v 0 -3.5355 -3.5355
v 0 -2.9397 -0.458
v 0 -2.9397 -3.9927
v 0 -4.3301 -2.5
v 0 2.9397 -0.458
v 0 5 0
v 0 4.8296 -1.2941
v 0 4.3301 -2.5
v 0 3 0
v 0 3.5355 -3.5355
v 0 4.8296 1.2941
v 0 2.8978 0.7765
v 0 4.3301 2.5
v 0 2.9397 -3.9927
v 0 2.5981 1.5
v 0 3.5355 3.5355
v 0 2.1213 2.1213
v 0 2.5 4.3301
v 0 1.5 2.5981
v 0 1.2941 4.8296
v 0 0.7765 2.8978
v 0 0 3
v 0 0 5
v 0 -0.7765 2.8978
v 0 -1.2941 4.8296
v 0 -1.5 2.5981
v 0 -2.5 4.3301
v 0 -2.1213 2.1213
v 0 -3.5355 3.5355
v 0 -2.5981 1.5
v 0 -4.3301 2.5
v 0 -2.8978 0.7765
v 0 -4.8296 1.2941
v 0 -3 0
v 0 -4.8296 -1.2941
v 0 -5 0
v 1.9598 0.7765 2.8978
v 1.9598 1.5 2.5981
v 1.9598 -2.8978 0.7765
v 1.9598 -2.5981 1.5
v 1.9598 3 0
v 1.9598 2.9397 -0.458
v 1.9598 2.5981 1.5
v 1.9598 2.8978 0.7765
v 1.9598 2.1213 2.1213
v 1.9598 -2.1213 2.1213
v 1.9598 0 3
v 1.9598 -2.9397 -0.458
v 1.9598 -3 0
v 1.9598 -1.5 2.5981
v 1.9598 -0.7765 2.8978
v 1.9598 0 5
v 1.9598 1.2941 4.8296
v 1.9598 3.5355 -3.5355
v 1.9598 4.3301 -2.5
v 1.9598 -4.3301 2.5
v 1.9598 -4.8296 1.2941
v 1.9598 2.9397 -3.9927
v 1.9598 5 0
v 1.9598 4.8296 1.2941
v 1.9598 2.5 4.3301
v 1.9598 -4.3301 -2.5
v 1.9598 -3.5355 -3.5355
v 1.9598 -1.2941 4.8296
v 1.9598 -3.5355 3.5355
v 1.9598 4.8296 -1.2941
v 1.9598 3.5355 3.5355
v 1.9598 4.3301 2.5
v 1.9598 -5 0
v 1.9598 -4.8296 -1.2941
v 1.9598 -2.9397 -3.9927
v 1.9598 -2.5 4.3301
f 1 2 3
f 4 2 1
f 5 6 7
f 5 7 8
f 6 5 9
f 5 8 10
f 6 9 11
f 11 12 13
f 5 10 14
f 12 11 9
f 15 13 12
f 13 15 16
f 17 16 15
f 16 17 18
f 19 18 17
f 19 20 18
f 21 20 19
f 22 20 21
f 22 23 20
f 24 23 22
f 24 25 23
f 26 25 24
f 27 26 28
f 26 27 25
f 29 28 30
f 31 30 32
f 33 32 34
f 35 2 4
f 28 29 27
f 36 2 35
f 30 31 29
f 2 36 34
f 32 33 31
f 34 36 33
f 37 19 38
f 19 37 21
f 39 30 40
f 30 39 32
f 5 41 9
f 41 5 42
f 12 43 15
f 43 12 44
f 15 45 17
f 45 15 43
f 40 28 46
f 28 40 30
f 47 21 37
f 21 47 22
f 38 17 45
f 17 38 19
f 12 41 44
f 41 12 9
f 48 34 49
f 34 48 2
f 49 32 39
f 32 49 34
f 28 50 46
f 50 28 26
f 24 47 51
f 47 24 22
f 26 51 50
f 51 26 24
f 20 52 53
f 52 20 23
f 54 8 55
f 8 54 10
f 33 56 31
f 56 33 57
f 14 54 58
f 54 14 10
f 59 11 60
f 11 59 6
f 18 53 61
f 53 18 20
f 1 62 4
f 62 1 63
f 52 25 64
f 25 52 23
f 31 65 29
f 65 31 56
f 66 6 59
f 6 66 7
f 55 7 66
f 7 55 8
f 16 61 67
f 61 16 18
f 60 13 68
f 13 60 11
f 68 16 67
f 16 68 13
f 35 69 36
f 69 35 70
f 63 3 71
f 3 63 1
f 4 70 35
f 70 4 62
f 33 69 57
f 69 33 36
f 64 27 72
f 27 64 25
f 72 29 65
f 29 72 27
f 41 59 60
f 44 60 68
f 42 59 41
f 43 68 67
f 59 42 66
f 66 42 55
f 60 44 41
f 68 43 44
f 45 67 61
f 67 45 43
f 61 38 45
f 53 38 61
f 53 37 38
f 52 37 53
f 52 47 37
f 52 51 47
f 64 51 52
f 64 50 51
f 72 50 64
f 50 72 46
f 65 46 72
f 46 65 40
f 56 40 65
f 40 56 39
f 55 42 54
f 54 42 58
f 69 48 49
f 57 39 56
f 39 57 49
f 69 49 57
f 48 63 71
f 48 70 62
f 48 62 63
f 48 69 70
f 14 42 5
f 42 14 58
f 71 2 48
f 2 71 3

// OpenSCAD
// file: ../build_environments.scad
// build_environments.scad: modules to build level sections
//

module pool(diameter=10.0, wall_height=2.0, step_width=3.0, connections=[])
{
    difference() {
        union() {
        difference() {
            cylinder(h=0.5,r1=diameter+step_width,r2=diameter+step_width,$fn=48);
            translate([0,0,-0.1])
                cylinder(h=0.7,r1=diameter,r2=diameter,$fn=48);
        }
        difference() {
            cylinder(h=wall_height,r1=diameter+step_width+1.0,r2=diameter+step_width+1.0,$fn=48);
            translate([0,0,-0.1])
                cylinder(h=wall_height+0.2,r1=diameter+step_width,r2=diameter+step_width,$fn=48);
        }
        }
    
        for (c = connections)
        {
            rotate([0,90,0]) {
                angle = atan2(c[1],c[0]);
                rotate([-angle,0,0]) {
                    cylinder(h=diameter+5.0,r1=c[2],r2=c[2],$fn=48);
                }
            }
        }
    }
}

module straight(length=10.0, width=2.0, dy1=0.0, dy2=0.0, dz=0.0)
{
    dims = [0, 0, 0, 0, 0, (dz/length)];
    matrix = [
        [ 1, dims[0], dims[1], 0 ],
        [ dims[2], 1, dims[4], 0 ],
        [ dims[5], dims[3], 1, 0 ],
        [ 0, 0, 0, 1 ]
    ];
    multmatrix(matrix)
    difference() {
        translate([dy1,0,0])
        union() {
            rotate([0,90,0]) {
                difference() {
                    cylinder(h=(length-dy1-dy2),r1=width+1.0,r2=width+1.0,$fn=24);
                    translate([0,0,-0.1])
                        cylinder(h=(length-dy1-dy2+0.2),r1=width,r2=width,$fn=24);
                }
                difference() {
                    cylinder(h=1.0,r1=width+2.0,r2=width+2.0,$fn=24);
                    translate([0,0,-0.1])
                        cylinder(h=1.2,r1=width,r2=width,$fn=24);
                }
                translate([0,0,(length-dy1-dy2)-1.0]) {
                    difference() {
                        cylinder(h=1.0,r1=width+2.0,r2=width+2.0,$fn=24);
                        translate([0,0,-0.1])
                            cylinder(h=1.2,r1=width,r2=width,$fn=24);
                    }
                }
            }
        }
        translate([0,0,-(2*width+4.0)/2])
            cube([3*length,3*length,2*width+4.0],center=true);
    }
}

module curve(p0=[0,0], center=[0,0], dir=1, angle=0.0, width=2.0)
{
    radius = sqrt((p0[0]-center[0])*(p0[0]-center[0]) + (p0[1]-center[1])*(p0[1]-center[1]));
    if (dir == 0) {
        difference() {
            rotate([0,0,-90])
            difference() {
                rotate_extrude(angle = angle, convexity = 10, $fn=32)
                    translate([radius, 0, 0])
                        circle(r = width+1.0,$fn=24);
                rotate([0,0,-1.0])
                    rotate_extrude(angle = angle+2.0, convexity = 10, $fn=32)
                        translate([radius, 0, 0])
                            circle(r = width,$fn=24);
            }
            translate([0,0,-(2*width+4.0)/2])
                cube([5*radius,5*radius,2*width+4.0],center=true);
        }
    }
    else {
        difference() {
            rotate([0,0,90])
            difference() {
                rotate_extrude(angle = -angle, convexity = 10, $fn=32)
                    translate([radius, 0, 0])
                        circle(r = width+1.0,$fn=24);
                rotate([0,0,1.0])
                    rotate_extrude(angle = -angle-2.0, convexity = 10, $fn=32)
                        translate([radius, 0, 0])
                            circle(r = width,$fn=24);
            }
            translate([0,0,-(2*width+4.0)/2])
                cube([5*radius,5*radius,2*width+4.0],center=true);
        }
    }

}

// test pool
//pool(diameter=12.0000, wall_height=3.0000, step_width=3.0000, connections=[[0.0000,-26.0000,2.0000], [23.6074,0.0000,2.0000]]);

// test straight, slope
//straight(length=26.0000, width=2.0000, dy1=11.8322, dy2=6.7082, dz=0.0000);
//straight(length=29.1549, width=12.0000, dy1=0.0000, dy2=0.0000, dz=-15.0000);

// test curve
//curve(p0=[23.6074, 0.0000], center=[23.6074, 5.0000], dir=0, angle=60.1011, width=2.0000);
//curve(p0=[33.6426, 12.4219], center=[37.9771, 9.9295], dir=1, angle=120.4627, width=2.0000);
// main file
use <../build_environments.scad>;
straight(length=1.9598, width=3.0000, dy1=0.0000, dy2=0.0000, dz=0.0000);
